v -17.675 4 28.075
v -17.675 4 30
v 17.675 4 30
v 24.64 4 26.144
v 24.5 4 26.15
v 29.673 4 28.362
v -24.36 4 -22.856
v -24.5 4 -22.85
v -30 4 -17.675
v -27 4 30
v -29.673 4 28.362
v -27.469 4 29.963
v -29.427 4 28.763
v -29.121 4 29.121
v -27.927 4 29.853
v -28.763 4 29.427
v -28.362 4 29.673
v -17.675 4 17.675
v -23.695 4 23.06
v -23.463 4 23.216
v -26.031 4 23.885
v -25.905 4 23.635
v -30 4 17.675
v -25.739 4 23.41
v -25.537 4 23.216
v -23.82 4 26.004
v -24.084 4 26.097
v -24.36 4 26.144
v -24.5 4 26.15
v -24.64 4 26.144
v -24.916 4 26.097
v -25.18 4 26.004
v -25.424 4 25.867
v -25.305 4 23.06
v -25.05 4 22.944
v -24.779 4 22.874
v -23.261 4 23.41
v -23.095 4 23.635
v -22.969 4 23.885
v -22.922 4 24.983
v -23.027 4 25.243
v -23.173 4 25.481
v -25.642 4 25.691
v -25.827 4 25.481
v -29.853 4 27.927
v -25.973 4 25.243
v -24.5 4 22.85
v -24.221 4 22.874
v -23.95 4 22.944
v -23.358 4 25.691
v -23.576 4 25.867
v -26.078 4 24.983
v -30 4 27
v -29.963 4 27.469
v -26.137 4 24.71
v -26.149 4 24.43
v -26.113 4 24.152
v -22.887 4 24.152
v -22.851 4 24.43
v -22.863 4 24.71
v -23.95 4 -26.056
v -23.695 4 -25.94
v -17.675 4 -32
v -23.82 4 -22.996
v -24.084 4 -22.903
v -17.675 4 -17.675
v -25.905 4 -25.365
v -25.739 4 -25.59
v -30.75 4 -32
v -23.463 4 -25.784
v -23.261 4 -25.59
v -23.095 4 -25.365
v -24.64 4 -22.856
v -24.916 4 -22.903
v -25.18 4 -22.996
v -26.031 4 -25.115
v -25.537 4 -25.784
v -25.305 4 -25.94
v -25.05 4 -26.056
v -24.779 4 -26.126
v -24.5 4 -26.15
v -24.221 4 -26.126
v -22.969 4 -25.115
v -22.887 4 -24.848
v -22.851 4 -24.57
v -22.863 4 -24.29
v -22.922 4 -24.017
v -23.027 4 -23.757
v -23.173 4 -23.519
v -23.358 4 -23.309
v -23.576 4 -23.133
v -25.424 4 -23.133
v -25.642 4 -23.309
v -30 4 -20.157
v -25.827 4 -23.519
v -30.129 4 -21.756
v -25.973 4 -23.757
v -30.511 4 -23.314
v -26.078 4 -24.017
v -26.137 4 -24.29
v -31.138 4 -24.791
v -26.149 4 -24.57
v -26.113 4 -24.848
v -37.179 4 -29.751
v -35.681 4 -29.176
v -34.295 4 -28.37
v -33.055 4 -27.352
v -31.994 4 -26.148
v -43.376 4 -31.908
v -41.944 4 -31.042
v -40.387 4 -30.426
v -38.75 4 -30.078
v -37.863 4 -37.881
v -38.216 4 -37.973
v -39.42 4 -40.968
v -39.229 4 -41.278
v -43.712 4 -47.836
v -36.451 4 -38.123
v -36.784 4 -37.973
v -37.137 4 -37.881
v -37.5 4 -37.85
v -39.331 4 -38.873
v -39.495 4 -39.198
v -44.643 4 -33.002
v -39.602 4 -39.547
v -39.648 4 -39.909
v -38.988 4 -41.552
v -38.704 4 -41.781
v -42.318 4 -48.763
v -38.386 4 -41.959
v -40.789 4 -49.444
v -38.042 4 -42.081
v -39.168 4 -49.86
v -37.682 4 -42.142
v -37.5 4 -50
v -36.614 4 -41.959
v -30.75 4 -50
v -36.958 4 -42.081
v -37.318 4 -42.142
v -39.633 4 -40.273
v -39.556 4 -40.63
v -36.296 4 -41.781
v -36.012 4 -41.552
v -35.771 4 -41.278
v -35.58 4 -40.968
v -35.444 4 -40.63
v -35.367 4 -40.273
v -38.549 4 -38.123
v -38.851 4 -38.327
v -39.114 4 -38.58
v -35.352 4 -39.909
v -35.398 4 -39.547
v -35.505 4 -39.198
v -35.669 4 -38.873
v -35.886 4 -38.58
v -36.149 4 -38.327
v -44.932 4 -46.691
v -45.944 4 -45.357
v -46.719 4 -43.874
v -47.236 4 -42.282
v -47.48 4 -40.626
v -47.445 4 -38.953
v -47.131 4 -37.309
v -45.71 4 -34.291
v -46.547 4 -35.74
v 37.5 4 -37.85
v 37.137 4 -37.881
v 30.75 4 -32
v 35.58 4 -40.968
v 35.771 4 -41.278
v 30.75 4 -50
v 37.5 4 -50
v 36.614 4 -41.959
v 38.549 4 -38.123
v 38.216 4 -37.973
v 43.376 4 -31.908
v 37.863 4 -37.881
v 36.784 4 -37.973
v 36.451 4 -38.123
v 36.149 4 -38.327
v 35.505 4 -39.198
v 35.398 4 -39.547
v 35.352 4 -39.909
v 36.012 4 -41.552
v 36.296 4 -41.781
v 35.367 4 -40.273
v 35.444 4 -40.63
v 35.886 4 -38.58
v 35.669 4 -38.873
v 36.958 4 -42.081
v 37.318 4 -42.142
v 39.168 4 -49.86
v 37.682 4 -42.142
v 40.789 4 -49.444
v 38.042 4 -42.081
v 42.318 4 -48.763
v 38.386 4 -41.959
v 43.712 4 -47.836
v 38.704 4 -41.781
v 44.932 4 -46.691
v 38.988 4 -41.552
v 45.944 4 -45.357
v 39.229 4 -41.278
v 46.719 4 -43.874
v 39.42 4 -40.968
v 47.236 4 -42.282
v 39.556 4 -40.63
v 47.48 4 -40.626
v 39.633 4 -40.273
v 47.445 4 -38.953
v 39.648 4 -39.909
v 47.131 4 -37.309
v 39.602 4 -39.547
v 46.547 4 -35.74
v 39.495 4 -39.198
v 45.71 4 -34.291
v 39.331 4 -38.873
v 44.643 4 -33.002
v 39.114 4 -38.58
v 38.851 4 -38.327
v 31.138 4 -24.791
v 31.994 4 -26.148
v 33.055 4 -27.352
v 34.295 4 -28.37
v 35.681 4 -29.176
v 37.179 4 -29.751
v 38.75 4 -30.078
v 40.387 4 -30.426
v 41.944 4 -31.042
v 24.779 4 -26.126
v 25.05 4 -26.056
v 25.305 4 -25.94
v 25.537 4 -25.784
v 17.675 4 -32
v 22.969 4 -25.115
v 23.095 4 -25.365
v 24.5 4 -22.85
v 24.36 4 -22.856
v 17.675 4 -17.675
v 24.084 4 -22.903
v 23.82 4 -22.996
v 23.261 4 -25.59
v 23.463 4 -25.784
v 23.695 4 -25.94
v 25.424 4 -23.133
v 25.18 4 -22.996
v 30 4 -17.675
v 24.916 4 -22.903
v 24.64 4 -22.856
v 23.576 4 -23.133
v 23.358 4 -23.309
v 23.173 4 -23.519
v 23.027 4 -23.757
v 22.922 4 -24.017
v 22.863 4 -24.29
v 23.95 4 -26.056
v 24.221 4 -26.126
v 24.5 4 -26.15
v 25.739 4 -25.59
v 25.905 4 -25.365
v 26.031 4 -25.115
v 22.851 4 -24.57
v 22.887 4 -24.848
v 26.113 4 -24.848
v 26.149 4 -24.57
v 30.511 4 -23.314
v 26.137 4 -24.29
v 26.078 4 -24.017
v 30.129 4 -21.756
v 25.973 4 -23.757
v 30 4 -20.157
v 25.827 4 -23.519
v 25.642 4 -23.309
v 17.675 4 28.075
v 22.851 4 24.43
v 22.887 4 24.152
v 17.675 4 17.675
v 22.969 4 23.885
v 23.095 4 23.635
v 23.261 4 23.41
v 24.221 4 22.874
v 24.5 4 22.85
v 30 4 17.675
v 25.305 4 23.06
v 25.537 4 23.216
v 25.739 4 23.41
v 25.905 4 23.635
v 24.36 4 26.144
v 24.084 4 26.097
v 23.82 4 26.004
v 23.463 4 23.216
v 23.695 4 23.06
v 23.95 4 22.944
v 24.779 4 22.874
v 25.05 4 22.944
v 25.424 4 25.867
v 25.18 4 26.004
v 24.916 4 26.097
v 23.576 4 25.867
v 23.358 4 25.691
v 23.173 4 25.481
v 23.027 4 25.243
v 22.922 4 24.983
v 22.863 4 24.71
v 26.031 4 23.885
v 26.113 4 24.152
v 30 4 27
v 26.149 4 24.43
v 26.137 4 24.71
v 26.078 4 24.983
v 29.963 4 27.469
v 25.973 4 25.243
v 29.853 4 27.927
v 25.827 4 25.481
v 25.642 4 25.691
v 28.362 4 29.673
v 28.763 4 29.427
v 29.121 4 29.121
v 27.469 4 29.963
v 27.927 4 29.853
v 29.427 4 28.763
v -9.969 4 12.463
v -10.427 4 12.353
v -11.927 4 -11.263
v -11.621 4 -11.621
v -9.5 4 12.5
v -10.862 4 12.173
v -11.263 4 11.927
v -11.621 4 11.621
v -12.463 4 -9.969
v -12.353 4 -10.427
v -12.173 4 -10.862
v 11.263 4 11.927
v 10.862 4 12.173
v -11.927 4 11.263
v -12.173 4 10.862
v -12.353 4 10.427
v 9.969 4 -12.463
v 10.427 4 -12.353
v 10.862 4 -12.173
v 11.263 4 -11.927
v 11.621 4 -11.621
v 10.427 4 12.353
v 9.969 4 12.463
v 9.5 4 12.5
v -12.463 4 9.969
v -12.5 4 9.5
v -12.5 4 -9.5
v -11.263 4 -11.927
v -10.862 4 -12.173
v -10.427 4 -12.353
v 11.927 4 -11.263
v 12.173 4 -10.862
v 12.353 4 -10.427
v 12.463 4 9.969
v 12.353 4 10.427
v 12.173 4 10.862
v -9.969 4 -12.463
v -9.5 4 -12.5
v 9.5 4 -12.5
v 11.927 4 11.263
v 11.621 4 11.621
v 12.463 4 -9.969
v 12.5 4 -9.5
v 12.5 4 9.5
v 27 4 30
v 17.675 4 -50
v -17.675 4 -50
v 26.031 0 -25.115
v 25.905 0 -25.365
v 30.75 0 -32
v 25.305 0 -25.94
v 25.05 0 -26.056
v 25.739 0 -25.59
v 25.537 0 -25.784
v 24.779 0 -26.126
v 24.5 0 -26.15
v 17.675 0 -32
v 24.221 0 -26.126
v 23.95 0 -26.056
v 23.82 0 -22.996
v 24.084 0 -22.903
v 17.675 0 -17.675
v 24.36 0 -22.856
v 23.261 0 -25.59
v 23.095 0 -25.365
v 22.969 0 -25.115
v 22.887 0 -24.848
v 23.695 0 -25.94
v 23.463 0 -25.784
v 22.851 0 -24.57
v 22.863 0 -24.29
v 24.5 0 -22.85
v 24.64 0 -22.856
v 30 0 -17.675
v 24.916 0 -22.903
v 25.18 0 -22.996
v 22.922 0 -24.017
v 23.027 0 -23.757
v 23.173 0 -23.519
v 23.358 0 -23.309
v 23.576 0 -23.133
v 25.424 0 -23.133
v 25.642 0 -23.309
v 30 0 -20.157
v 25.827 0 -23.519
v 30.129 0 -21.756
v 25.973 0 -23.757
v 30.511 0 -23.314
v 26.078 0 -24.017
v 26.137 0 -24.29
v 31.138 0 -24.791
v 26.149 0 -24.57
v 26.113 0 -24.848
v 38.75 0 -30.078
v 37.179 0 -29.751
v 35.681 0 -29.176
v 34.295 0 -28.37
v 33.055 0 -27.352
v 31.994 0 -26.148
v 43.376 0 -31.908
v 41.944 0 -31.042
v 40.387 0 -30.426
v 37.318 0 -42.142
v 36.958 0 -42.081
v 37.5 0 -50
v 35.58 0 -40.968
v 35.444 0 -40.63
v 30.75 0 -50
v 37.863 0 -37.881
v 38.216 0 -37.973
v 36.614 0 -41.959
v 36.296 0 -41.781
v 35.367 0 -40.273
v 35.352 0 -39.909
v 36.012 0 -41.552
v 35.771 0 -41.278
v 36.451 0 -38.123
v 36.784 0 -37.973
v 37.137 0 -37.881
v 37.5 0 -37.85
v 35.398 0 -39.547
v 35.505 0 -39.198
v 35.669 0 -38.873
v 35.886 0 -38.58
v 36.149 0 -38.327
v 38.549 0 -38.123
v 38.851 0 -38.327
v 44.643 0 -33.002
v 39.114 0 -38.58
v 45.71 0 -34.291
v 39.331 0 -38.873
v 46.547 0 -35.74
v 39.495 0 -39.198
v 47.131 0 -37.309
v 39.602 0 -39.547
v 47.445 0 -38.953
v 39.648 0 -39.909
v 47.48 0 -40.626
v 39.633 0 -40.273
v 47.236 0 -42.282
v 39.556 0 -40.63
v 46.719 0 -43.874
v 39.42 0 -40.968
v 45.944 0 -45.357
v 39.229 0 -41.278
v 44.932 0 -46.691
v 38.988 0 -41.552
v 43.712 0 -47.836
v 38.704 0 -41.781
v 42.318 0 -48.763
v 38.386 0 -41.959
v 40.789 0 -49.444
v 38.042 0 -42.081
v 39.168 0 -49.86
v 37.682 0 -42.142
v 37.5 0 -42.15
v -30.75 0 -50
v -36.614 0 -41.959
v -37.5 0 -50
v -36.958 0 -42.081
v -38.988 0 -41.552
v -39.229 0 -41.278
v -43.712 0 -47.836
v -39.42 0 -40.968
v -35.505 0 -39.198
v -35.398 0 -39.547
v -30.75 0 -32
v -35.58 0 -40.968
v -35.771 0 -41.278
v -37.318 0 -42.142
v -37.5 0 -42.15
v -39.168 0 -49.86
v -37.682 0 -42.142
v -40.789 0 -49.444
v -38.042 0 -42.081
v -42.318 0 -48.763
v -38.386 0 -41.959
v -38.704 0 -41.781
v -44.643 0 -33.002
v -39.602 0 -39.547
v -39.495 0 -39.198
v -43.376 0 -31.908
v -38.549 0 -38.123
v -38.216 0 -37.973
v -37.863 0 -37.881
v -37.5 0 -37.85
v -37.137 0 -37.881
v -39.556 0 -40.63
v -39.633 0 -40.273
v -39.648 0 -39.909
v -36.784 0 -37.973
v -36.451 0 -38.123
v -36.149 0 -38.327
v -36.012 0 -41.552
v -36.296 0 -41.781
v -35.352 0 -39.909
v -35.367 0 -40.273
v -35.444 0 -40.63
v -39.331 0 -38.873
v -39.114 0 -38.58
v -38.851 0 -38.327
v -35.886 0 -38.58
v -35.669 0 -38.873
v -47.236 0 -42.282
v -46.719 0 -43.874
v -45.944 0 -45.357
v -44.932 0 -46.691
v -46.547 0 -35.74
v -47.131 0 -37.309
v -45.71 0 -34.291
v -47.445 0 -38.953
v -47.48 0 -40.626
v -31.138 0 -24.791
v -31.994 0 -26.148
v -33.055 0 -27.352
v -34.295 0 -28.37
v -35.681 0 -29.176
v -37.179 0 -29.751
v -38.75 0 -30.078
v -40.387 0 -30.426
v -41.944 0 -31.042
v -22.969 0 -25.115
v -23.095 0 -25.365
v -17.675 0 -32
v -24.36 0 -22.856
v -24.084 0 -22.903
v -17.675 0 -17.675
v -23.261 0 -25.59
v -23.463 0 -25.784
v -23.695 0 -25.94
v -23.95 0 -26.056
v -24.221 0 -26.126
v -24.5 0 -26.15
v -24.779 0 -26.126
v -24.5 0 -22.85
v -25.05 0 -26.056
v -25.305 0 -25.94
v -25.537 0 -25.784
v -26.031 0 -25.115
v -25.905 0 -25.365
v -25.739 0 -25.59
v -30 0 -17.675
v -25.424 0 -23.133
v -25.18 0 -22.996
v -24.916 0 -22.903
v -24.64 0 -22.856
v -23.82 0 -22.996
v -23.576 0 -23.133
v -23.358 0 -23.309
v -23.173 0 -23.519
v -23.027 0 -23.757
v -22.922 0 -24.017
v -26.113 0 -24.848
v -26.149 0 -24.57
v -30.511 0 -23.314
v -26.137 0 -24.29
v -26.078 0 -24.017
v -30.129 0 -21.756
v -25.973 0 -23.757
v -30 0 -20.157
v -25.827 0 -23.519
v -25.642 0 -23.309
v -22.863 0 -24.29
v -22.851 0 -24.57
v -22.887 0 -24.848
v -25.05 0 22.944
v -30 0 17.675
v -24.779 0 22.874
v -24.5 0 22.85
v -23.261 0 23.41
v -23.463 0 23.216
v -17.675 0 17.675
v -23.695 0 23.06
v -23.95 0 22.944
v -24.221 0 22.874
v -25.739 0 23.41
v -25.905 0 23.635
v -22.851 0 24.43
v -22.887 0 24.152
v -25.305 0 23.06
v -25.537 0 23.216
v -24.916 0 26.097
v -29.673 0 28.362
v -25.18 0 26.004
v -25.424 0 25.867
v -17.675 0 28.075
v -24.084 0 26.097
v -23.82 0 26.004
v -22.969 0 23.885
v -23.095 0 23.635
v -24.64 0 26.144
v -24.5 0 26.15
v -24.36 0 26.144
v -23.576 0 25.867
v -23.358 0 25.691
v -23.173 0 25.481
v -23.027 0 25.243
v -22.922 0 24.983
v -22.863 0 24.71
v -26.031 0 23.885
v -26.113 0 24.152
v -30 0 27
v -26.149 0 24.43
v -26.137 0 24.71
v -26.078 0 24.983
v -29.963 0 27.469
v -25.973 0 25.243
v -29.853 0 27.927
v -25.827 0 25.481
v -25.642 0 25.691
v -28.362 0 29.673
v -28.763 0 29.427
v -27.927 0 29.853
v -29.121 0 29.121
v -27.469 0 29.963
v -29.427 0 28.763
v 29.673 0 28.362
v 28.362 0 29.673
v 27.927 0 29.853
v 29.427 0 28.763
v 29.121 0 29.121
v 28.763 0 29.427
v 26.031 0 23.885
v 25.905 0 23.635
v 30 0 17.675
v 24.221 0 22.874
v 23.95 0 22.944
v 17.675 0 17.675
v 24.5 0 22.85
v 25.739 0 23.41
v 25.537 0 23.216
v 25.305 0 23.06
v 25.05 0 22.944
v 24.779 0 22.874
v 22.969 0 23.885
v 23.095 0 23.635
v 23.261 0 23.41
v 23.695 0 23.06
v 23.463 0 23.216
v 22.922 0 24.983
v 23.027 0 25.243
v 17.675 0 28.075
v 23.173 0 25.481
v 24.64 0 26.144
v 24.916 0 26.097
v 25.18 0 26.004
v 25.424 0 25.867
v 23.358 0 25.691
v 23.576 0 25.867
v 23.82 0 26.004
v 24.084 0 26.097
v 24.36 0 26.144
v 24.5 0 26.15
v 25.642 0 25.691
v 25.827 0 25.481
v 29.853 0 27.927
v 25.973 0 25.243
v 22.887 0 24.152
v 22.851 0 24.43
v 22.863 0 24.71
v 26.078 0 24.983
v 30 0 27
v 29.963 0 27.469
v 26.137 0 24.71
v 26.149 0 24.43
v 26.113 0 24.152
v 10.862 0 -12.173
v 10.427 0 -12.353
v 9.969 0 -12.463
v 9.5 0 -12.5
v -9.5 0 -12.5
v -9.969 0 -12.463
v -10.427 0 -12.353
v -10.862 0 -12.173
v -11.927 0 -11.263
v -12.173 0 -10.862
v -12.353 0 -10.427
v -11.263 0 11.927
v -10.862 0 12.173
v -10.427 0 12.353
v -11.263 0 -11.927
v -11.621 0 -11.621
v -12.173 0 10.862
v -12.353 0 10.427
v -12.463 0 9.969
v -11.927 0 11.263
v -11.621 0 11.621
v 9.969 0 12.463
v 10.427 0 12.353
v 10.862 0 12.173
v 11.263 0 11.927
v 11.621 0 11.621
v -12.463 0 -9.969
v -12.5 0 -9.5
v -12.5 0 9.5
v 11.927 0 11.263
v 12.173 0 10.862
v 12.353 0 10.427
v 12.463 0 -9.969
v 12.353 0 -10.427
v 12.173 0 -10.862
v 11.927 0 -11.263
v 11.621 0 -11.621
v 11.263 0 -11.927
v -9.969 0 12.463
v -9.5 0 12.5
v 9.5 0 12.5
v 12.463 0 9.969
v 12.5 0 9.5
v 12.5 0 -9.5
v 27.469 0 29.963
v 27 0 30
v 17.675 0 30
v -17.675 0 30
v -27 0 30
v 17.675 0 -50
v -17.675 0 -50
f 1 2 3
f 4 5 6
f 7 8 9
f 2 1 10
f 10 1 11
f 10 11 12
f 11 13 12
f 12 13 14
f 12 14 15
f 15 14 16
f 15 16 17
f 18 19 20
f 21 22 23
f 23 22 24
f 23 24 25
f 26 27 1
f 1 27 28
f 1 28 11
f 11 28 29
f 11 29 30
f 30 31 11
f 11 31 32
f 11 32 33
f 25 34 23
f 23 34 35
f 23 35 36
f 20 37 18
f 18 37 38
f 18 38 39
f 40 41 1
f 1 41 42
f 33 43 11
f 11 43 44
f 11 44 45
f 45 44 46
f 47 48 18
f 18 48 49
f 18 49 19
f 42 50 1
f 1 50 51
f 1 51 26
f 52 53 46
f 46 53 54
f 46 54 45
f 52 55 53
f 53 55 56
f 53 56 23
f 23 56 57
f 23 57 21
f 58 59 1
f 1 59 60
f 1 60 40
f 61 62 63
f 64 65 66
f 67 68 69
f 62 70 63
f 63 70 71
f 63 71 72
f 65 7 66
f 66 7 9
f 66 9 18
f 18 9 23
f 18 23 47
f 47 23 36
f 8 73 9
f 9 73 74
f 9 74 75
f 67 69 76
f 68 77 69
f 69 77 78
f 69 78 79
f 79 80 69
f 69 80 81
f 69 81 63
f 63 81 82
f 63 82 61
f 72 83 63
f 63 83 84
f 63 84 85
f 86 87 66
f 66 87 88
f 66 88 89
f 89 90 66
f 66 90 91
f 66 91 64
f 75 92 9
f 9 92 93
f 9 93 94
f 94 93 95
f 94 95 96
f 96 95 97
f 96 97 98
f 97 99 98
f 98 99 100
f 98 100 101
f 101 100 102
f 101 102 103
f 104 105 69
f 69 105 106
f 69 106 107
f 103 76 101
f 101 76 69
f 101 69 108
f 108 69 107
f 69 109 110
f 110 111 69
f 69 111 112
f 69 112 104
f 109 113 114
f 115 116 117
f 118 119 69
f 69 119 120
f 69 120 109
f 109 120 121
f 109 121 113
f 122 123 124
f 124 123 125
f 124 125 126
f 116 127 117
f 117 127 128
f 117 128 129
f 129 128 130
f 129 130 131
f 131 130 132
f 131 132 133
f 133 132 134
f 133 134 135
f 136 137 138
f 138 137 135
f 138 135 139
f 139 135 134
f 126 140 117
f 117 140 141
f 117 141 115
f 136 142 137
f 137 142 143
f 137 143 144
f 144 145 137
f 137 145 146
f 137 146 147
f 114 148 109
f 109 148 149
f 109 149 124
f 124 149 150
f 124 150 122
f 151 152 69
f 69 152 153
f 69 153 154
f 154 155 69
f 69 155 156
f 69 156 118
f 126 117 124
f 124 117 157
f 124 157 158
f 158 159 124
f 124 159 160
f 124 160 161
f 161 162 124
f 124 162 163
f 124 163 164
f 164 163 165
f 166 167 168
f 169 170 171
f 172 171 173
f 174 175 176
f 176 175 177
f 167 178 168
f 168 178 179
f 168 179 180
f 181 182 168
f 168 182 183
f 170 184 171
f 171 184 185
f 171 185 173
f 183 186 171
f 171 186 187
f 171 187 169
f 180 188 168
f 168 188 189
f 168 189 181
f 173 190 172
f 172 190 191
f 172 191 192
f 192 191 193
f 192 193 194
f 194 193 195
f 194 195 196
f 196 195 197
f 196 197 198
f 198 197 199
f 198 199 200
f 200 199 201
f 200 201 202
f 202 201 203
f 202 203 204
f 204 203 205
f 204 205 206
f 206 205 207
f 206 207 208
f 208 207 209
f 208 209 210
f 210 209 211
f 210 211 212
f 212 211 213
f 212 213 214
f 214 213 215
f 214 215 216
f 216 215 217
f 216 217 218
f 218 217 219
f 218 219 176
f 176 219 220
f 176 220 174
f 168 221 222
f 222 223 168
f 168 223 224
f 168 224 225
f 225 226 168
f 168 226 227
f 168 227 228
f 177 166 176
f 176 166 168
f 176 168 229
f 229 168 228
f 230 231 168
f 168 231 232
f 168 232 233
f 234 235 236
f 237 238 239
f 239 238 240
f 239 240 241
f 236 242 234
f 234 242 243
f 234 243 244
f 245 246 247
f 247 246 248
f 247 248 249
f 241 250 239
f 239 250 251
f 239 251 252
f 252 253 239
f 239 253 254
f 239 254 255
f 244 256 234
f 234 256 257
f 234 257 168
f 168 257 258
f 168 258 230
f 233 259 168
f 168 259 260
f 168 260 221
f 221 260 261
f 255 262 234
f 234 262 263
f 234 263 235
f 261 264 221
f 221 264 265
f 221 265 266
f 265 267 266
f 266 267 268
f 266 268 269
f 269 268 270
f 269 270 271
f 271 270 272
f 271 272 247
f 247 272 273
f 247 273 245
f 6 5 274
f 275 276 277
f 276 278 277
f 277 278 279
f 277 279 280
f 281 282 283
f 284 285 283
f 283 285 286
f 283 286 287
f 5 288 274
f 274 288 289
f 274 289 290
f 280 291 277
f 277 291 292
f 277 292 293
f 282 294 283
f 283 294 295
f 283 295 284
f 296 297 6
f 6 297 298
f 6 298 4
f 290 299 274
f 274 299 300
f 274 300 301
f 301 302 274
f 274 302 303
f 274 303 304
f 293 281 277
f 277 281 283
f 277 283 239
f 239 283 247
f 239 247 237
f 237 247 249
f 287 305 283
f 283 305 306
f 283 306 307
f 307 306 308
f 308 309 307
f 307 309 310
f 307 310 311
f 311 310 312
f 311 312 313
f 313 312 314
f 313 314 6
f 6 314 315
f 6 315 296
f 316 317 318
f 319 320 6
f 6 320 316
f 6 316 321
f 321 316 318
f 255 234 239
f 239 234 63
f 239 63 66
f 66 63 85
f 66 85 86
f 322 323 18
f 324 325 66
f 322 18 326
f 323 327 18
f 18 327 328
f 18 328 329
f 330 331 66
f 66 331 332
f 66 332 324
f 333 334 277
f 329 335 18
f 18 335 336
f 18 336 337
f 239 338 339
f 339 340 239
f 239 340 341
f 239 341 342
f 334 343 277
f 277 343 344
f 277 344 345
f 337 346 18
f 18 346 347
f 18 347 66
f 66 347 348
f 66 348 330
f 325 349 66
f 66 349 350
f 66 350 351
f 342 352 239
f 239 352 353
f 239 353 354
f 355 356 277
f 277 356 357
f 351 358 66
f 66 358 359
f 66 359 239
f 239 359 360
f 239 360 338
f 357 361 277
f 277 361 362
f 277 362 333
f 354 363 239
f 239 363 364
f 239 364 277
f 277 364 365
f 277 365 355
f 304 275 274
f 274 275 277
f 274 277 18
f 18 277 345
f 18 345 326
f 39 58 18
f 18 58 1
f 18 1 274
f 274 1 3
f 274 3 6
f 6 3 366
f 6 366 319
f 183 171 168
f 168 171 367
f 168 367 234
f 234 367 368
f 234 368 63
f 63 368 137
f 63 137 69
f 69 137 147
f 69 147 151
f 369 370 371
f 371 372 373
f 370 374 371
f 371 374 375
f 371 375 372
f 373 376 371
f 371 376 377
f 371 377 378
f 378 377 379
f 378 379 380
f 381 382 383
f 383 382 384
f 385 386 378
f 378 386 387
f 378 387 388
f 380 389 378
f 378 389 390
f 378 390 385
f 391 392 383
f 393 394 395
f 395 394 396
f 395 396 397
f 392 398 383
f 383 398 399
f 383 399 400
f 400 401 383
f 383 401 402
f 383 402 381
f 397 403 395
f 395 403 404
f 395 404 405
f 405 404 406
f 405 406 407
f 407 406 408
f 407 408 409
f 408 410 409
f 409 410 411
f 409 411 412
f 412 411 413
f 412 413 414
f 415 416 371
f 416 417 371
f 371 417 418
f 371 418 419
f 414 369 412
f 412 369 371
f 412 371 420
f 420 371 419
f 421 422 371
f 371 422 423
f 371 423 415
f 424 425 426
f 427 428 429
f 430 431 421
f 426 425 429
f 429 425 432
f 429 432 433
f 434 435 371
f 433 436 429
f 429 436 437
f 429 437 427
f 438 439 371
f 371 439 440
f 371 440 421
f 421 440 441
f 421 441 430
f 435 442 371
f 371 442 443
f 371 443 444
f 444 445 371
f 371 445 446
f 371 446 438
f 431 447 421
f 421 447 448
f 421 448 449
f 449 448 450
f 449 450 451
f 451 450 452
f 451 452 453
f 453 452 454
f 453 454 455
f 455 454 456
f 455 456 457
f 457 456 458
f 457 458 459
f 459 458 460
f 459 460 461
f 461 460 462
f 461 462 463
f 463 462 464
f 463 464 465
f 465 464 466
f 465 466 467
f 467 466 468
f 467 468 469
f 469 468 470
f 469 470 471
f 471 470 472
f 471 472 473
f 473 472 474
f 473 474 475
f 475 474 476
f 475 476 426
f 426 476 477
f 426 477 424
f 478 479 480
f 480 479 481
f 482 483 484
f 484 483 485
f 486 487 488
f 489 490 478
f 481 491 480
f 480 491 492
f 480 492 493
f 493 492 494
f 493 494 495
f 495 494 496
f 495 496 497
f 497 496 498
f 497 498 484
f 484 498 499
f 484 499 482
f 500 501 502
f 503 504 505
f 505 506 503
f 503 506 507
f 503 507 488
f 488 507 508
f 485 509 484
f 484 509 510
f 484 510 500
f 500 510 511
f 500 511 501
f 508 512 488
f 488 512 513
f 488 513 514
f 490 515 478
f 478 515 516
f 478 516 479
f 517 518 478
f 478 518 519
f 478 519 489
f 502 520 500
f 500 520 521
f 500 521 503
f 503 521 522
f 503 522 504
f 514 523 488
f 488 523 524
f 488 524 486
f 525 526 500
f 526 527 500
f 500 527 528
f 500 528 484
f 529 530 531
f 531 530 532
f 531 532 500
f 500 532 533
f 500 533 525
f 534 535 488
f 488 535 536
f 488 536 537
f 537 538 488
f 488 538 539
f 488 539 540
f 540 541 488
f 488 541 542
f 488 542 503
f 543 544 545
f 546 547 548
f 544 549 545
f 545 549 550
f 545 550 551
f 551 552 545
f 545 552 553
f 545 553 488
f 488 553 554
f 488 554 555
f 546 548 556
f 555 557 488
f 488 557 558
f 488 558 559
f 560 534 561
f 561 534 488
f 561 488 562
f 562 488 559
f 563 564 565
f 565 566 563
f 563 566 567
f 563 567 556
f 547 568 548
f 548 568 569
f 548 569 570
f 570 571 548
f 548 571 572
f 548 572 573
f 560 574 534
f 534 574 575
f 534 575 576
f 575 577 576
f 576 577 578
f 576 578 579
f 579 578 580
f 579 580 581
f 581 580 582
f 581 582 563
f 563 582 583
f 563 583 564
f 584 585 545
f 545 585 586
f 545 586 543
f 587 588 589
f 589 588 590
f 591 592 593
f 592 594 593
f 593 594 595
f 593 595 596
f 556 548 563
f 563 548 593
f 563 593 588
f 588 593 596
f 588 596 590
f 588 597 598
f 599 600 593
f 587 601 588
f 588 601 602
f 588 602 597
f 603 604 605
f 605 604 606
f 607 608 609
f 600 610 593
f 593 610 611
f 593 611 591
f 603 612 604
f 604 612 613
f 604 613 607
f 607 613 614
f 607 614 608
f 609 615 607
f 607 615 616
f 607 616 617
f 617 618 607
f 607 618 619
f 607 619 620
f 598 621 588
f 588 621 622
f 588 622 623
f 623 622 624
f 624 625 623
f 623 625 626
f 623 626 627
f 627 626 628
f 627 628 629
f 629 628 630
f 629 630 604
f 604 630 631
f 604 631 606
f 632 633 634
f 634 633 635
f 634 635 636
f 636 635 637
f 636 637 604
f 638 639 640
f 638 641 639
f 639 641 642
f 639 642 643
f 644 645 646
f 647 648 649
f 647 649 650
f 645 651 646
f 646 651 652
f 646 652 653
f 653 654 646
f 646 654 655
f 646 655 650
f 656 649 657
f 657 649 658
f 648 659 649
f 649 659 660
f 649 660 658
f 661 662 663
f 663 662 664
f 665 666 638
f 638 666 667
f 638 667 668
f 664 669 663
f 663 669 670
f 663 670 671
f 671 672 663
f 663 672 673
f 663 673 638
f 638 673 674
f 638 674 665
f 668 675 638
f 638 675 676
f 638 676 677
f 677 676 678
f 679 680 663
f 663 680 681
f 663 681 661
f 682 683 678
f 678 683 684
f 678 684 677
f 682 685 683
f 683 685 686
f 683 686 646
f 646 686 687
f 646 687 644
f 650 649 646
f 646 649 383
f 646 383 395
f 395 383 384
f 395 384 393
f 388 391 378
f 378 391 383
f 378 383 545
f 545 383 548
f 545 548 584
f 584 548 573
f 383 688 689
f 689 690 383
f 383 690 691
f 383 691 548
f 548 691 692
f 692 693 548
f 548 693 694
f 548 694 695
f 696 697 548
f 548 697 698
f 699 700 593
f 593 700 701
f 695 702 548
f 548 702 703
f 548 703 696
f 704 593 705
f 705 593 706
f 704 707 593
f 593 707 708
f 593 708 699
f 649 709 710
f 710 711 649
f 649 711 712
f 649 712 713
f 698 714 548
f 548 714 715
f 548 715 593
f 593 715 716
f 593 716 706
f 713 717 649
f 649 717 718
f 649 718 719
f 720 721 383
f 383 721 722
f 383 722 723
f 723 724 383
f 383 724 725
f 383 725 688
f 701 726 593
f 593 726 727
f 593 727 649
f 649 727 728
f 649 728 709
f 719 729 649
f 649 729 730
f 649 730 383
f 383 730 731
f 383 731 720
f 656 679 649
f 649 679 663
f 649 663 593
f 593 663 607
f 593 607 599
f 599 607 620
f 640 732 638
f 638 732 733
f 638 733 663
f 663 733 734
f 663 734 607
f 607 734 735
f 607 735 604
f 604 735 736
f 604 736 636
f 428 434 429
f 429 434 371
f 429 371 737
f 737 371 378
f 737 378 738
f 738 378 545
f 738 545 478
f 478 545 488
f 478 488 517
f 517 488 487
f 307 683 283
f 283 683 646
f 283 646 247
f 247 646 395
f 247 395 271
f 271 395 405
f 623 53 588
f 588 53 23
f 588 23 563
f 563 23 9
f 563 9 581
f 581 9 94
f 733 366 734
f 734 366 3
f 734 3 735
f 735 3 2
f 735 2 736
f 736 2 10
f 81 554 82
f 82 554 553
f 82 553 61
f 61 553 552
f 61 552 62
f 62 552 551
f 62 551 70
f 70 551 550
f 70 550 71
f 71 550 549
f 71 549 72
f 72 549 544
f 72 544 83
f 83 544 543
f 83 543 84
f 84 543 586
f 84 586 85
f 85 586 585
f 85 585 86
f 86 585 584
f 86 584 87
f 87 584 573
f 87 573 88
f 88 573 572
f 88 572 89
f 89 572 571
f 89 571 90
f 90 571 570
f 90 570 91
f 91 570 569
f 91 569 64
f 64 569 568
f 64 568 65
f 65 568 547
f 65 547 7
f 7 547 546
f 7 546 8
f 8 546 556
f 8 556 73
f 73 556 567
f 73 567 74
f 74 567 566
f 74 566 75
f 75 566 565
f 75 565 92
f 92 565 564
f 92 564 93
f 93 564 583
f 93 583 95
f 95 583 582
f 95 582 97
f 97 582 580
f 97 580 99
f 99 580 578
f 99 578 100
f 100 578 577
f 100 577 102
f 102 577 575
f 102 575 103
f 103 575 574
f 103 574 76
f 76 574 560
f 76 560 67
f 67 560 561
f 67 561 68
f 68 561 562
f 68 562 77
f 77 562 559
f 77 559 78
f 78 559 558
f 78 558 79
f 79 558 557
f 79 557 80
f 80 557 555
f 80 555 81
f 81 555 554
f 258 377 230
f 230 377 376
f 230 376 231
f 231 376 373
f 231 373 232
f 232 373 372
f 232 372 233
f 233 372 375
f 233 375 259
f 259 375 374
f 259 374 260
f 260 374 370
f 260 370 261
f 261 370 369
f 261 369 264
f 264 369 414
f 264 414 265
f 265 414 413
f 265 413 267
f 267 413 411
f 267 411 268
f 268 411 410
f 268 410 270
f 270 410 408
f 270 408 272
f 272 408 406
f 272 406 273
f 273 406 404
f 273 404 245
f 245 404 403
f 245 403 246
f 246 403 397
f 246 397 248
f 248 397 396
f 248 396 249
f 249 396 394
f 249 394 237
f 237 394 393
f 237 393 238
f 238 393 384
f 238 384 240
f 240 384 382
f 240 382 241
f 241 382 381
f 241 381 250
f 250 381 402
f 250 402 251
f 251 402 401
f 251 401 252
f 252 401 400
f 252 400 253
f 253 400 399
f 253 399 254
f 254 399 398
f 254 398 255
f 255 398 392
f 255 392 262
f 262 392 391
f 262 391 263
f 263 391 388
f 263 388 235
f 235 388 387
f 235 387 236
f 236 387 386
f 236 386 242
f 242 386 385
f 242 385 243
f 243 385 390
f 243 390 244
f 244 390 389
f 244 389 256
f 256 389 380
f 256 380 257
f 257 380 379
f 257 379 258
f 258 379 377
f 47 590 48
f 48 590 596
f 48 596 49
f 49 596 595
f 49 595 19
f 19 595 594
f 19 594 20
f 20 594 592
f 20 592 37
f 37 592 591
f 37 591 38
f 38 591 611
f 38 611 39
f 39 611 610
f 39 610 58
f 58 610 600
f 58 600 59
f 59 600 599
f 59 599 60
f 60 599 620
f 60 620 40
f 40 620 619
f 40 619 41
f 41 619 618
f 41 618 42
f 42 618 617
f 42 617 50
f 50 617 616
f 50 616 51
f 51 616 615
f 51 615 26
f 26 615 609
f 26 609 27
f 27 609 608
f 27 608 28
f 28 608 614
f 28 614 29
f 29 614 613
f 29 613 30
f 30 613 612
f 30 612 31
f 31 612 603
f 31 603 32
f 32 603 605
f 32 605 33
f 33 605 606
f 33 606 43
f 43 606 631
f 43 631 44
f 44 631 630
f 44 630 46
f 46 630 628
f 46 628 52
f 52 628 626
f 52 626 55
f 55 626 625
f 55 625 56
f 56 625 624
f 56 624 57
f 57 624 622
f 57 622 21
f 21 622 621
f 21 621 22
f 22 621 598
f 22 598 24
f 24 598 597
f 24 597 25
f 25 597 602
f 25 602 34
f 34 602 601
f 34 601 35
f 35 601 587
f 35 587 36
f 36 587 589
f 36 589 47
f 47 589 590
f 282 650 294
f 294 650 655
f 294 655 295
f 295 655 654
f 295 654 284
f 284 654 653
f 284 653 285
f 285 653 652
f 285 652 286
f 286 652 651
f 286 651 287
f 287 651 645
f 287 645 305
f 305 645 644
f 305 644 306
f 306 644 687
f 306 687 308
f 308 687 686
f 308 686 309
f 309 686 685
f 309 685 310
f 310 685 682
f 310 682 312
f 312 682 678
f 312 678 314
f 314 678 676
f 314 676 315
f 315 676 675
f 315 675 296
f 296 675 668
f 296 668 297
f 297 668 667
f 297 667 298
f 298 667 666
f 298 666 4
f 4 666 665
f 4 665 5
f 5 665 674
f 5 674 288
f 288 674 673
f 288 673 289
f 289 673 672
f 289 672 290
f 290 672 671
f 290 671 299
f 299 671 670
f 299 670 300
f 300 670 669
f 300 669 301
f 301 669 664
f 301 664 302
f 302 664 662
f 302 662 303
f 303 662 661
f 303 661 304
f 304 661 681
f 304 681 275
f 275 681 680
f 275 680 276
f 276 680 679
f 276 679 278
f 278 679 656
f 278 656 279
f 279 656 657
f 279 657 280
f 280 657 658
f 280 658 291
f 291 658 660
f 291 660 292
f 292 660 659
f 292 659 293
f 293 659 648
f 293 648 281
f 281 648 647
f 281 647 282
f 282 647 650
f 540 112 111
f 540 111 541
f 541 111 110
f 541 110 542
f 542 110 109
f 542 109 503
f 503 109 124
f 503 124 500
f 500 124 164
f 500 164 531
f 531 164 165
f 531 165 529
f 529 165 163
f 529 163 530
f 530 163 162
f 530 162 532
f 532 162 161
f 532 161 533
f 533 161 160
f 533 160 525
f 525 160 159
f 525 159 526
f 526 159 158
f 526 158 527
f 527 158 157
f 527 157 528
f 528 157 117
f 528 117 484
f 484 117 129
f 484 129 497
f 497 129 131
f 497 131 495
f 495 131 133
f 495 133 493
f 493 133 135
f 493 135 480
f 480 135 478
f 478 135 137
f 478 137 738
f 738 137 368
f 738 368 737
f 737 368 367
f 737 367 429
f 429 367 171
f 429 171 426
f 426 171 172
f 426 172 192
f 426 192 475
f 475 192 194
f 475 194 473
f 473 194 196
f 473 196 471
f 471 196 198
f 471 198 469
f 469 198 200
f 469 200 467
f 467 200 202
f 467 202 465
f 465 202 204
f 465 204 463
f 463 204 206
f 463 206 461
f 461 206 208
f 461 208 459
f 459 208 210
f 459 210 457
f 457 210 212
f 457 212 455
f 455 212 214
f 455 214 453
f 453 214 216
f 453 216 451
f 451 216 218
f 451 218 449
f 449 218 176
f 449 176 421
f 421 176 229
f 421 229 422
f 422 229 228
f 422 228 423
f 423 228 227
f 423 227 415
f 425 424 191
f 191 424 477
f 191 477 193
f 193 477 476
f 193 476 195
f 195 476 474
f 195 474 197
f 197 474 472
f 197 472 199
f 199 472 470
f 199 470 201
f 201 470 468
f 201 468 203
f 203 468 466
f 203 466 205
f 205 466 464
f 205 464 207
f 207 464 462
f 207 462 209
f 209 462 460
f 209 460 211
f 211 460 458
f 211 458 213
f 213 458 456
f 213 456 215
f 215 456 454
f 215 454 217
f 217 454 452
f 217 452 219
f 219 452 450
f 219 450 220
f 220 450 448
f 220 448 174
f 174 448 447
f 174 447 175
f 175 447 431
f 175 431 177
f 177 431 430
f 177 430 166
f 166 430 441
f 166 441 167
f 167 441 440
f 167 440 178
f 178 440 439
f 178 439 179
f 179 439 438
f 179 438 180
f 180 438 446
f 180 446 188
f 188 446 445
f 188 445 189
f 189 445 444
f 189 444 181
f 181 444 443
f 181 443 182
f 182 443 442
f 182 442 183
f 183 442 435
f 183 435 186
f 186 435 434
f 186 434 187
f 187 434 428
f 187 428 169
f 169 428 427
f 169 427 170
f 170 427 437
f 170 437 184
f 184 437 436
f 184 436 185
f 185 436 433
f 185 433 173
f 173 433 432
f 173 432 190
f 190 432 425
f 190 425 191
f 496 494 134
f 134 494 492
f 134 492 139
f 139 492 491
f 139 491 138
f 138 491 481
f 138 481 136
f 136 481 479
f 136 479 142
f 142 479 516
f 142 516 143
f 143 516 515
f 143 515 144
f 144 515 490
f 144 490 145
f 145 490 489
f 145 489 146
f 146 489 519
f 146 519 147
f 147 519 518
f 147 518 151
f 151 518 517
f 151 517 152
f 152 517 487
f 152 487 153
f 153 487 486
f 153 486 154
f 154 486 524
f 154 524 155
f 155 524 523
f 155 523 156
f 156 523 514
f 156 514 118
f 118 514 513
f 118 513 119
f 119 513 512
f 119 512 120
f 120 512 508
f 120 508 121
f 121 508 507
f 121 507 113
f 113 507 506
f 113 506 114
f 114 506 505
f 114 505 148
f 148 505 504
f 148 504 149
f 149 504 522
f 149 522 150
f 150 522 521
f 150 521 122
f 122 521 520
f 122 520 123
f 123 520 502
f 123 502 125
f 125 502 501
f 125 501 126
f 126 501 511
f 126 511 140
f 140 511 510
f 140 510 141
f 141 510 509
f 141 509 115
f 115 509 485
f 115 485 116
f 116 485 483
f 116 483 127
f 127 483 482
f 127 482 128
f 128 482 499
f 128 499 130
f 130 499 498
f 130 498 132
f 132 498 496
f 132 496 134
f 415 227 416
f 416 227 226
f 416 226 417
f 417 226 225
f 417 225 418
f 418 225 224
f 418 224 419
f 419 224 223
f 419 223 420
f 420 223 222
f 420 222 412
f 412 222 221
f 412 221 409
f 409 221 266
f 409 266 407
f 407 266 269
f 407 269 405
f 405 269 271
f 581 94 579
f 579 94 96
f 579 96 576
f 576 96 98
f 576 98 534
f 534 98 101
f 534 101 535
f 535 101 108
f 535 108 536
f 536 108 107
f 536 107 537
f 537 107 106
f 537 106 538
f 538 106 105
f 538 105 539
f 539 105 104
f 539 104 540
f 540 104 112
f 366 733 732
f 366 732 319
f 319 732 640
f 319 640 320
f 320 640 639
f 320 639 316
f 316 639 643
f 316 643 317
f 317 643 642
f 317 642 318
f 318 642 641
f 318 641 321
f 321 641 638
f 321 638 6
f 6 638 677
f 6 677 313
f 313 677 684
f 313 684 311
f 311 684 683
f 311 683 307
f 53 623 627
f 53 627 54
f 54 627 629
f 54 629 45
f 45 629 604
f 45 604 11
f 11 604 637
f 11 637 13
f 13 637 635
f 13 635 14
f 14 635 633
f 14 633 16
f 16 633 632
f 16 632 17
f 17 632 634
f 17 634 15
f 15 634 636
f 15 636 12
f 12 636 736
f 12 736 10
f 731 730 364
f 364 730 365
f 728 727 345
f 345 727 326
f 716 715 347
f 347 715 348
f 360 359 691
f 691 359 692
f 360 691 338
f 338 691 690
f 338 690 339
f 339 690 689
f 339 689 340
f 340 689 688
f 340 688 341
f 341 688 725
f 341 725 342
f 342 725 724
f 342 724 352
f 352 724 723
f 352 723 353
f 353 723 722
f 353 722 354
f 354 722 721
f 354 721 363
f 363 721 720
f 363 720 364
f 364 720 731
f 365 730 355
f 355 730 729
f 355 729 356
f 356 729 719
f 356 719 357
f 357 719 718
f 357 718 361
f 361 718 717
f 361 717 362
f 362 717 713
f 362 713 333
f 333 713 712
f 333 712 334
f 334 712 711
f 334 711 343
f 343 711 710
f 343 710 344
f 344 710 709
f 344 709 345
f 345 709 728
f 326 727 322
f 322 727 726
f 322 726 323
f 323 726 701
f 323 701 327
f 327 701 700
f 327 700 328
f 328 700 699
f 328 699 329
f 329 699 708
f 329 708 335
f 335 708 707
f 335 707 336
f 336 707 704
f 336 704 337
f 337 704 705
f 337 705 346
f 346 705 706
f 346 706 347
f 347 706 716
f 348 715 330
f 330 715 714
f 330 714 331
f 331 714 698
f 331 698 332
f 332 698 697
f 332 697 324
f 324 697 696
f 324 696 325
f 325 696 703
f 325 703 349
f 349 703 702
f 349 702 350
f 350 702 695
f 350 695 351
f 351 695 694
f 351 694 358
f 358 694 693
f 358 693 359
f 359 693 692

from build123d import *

# Parameters (mm, degrees)
SKETCH1_W               = 60
SKETCH1_H               = 60
SKETCH1_R               = 1.65
BOSS_EXTRUDE1_DEPTH     = 4
SKETCH2_R               = 2.15
BOSS_EXTRUDE2_DEPTH     = 4
FILLET1_R               = 10
FILLET2_R               = 3
CUT_EXTRUDE1_DEPTH      = 70.081473638
CUT_EXTRUDE1_DEPTH_BACK = 70.081473638
SKETCH3_W               = 25
SKETCH3_H               = 25
FILLET3_R               = 3


with BuildPart() as part:
    # Sketch1 → Boss-Extrude1 (new body)
    with BuildSketch(Plane(origin=(0, 0, 0), x_dir=(1, 0, 0), z_dir=(0, 1, 0))):
        Rectangle(SKETCH1_W, SKETCH1_H)
        with Locations(Location((-24.5, 24.5, 0), (0, 0, 270))):
            Circle(SKETCH1_R, mode=Mode.SUBTRACT)
        with Locations(Location((24.5, 24.5, 0), (0, 0, 270))):
            Circle(SKETCH1_R, mode=Mode.SUBTRACT)
        with Locations(Location((-24.5, -24.5, 0), (0, 0, 270))):
            Circle(SKETCH1_R, mode=Mode.SUBTRACT)
        with Locations(Location((24.5, -24.5, 0), (0, 0, 270))):
            Circle(SKETCH1_R, mode=Mode.SUBTRACT)
    extrude(amount=BOSS_EXTRUDE1_DEPTH)

    # Sketch2 → Boss-Extrude2 (add)
    with BuildSketch(Plane(origin=(0, 4, 0), x_dir=(1, 0, 0), z_dir=(0, 1, 0))):
        with BuildLine():
            Line((-37.5, 50), (37.5, 50))
            ThreePointArc((37.5, 50), (47.5, 40), (37.5, 30))
            Line((37.5, 30), (-37.5, 30))
            ThreePointArc((-37.5, 30), (-47.5, 40), (-37.5, 50))
        make_face()
        with Locations(Location((-37.5, 40, 0), (0, 0, 270))):
            Circle(SKETCH2_R, mode=Mode.SUBTRACT)
        with Locations(Location((37.5, 40, 0), (0, 0, 270))):
            Circle(SKETCH2_R, mode=Mode.SUBTRACT)
    extrude(amount=-BOSS_EXTRUDE2_DEPTH)

    # Fillet1
    # the kernel refuses this fillet: 10 mm, written as the material it adds along each edge
    with BuildSketch(Plane(origin=(-30, 0, -30), x_dir=(-0.9999598282483387, 0, -0.008963363740972157), z_dir=(0, 1, 0))) as fillet1_piece_1:
        with BuildLine():
            CenterArc((9.911370685, 9.932373054), FILLET1_R, 180.51356979, 82.819244219)
            Line((-0.088227598, 9.842739417), (-1.088187426, 9.833776053))
            Line((-1.088187426, 9.833776053), (-0.999959828, -0.008963364))
            Line((-0.999959828, -0.008963364), (0.008963364, -0.999959828))
            ThreePointArc((0.008963364, -0.999959828), (7.508662076, -0.9327346), (8.6342496, -0.993237305))
            Line((8.6342496, -0.993237305), (8.750351517, 0))
        make_face()
    extrude(amount=4)
    with BuildSketch(Plane(origin=(30, 0, -30), x_dir=(0.9999598282483387, 0, -0.008963363740972154), z_dir=(0, 1, 0))) as fillet1_piece_2:
        with BuildLine():
            CenterArc((9.911370685, -9.932373054), FILLET1_R, 96.667185992, 82.819244219)
            Line((-0.088227598, -9.842739417), (-1.088187426, -9.833776053))
            Line((-1.088187426, -9.833776053), (-0.999959828, 0.008963364))
            Line((-0.999959828, 0.008963364), (0.008963364, 0.999959828))
            ThreePointArc((0.008963364, 0.999959828), (7.508662076, 0.9327346), (8.6342496, 0.993237305))
            Line((8.6342496, 0.993237305), (8.750351517, 0))
        make_face()
    extrude(amount=4)
    # the kernel refuses this fillet: 10 mm, written as the material it takes off along each edge

    # Fillet2
    fillet2_edges = [part.edges().sort_by_distance(p)[0] for p in [
        (30, 2, 30),
        (-30, 2, 30),
    ]]
    fillet(fillet2_edges, radius=FILLET2_R)

    # Sketch3 → Cut-Extrude1 (cut, two sides: drawn at the far end of the back side and taken through both)
    with BuildSketch(Plane(origin=(0, 4, 0), x_dir=(1, 0, 0), z_dir=(0, 1, 0)).offset(-CUT_EXTRUDE1_DEPTH_BACK)):
        Rectangle(SKETCH3_W, SKETCH3_H)
    extrude(amount=CUT_EXTRUDE1_DEPTH + CUT_EXTRUDE1_DEPTH_BACK, mode=Mode.SUBTRACT)

    # Fillet3
    fillet3_edges = [part.edges().sort_by_distance(p)[0] for p in [
        (12.5, 2, -12.5),
        (12.5, 2, 12.5),
        (-12.5, 2, 12.5),
        (-12.5, 2, -12.5),
    ]]
    fillet(fillet3_edges, radius=FILLET3_R)


solid = part.part
